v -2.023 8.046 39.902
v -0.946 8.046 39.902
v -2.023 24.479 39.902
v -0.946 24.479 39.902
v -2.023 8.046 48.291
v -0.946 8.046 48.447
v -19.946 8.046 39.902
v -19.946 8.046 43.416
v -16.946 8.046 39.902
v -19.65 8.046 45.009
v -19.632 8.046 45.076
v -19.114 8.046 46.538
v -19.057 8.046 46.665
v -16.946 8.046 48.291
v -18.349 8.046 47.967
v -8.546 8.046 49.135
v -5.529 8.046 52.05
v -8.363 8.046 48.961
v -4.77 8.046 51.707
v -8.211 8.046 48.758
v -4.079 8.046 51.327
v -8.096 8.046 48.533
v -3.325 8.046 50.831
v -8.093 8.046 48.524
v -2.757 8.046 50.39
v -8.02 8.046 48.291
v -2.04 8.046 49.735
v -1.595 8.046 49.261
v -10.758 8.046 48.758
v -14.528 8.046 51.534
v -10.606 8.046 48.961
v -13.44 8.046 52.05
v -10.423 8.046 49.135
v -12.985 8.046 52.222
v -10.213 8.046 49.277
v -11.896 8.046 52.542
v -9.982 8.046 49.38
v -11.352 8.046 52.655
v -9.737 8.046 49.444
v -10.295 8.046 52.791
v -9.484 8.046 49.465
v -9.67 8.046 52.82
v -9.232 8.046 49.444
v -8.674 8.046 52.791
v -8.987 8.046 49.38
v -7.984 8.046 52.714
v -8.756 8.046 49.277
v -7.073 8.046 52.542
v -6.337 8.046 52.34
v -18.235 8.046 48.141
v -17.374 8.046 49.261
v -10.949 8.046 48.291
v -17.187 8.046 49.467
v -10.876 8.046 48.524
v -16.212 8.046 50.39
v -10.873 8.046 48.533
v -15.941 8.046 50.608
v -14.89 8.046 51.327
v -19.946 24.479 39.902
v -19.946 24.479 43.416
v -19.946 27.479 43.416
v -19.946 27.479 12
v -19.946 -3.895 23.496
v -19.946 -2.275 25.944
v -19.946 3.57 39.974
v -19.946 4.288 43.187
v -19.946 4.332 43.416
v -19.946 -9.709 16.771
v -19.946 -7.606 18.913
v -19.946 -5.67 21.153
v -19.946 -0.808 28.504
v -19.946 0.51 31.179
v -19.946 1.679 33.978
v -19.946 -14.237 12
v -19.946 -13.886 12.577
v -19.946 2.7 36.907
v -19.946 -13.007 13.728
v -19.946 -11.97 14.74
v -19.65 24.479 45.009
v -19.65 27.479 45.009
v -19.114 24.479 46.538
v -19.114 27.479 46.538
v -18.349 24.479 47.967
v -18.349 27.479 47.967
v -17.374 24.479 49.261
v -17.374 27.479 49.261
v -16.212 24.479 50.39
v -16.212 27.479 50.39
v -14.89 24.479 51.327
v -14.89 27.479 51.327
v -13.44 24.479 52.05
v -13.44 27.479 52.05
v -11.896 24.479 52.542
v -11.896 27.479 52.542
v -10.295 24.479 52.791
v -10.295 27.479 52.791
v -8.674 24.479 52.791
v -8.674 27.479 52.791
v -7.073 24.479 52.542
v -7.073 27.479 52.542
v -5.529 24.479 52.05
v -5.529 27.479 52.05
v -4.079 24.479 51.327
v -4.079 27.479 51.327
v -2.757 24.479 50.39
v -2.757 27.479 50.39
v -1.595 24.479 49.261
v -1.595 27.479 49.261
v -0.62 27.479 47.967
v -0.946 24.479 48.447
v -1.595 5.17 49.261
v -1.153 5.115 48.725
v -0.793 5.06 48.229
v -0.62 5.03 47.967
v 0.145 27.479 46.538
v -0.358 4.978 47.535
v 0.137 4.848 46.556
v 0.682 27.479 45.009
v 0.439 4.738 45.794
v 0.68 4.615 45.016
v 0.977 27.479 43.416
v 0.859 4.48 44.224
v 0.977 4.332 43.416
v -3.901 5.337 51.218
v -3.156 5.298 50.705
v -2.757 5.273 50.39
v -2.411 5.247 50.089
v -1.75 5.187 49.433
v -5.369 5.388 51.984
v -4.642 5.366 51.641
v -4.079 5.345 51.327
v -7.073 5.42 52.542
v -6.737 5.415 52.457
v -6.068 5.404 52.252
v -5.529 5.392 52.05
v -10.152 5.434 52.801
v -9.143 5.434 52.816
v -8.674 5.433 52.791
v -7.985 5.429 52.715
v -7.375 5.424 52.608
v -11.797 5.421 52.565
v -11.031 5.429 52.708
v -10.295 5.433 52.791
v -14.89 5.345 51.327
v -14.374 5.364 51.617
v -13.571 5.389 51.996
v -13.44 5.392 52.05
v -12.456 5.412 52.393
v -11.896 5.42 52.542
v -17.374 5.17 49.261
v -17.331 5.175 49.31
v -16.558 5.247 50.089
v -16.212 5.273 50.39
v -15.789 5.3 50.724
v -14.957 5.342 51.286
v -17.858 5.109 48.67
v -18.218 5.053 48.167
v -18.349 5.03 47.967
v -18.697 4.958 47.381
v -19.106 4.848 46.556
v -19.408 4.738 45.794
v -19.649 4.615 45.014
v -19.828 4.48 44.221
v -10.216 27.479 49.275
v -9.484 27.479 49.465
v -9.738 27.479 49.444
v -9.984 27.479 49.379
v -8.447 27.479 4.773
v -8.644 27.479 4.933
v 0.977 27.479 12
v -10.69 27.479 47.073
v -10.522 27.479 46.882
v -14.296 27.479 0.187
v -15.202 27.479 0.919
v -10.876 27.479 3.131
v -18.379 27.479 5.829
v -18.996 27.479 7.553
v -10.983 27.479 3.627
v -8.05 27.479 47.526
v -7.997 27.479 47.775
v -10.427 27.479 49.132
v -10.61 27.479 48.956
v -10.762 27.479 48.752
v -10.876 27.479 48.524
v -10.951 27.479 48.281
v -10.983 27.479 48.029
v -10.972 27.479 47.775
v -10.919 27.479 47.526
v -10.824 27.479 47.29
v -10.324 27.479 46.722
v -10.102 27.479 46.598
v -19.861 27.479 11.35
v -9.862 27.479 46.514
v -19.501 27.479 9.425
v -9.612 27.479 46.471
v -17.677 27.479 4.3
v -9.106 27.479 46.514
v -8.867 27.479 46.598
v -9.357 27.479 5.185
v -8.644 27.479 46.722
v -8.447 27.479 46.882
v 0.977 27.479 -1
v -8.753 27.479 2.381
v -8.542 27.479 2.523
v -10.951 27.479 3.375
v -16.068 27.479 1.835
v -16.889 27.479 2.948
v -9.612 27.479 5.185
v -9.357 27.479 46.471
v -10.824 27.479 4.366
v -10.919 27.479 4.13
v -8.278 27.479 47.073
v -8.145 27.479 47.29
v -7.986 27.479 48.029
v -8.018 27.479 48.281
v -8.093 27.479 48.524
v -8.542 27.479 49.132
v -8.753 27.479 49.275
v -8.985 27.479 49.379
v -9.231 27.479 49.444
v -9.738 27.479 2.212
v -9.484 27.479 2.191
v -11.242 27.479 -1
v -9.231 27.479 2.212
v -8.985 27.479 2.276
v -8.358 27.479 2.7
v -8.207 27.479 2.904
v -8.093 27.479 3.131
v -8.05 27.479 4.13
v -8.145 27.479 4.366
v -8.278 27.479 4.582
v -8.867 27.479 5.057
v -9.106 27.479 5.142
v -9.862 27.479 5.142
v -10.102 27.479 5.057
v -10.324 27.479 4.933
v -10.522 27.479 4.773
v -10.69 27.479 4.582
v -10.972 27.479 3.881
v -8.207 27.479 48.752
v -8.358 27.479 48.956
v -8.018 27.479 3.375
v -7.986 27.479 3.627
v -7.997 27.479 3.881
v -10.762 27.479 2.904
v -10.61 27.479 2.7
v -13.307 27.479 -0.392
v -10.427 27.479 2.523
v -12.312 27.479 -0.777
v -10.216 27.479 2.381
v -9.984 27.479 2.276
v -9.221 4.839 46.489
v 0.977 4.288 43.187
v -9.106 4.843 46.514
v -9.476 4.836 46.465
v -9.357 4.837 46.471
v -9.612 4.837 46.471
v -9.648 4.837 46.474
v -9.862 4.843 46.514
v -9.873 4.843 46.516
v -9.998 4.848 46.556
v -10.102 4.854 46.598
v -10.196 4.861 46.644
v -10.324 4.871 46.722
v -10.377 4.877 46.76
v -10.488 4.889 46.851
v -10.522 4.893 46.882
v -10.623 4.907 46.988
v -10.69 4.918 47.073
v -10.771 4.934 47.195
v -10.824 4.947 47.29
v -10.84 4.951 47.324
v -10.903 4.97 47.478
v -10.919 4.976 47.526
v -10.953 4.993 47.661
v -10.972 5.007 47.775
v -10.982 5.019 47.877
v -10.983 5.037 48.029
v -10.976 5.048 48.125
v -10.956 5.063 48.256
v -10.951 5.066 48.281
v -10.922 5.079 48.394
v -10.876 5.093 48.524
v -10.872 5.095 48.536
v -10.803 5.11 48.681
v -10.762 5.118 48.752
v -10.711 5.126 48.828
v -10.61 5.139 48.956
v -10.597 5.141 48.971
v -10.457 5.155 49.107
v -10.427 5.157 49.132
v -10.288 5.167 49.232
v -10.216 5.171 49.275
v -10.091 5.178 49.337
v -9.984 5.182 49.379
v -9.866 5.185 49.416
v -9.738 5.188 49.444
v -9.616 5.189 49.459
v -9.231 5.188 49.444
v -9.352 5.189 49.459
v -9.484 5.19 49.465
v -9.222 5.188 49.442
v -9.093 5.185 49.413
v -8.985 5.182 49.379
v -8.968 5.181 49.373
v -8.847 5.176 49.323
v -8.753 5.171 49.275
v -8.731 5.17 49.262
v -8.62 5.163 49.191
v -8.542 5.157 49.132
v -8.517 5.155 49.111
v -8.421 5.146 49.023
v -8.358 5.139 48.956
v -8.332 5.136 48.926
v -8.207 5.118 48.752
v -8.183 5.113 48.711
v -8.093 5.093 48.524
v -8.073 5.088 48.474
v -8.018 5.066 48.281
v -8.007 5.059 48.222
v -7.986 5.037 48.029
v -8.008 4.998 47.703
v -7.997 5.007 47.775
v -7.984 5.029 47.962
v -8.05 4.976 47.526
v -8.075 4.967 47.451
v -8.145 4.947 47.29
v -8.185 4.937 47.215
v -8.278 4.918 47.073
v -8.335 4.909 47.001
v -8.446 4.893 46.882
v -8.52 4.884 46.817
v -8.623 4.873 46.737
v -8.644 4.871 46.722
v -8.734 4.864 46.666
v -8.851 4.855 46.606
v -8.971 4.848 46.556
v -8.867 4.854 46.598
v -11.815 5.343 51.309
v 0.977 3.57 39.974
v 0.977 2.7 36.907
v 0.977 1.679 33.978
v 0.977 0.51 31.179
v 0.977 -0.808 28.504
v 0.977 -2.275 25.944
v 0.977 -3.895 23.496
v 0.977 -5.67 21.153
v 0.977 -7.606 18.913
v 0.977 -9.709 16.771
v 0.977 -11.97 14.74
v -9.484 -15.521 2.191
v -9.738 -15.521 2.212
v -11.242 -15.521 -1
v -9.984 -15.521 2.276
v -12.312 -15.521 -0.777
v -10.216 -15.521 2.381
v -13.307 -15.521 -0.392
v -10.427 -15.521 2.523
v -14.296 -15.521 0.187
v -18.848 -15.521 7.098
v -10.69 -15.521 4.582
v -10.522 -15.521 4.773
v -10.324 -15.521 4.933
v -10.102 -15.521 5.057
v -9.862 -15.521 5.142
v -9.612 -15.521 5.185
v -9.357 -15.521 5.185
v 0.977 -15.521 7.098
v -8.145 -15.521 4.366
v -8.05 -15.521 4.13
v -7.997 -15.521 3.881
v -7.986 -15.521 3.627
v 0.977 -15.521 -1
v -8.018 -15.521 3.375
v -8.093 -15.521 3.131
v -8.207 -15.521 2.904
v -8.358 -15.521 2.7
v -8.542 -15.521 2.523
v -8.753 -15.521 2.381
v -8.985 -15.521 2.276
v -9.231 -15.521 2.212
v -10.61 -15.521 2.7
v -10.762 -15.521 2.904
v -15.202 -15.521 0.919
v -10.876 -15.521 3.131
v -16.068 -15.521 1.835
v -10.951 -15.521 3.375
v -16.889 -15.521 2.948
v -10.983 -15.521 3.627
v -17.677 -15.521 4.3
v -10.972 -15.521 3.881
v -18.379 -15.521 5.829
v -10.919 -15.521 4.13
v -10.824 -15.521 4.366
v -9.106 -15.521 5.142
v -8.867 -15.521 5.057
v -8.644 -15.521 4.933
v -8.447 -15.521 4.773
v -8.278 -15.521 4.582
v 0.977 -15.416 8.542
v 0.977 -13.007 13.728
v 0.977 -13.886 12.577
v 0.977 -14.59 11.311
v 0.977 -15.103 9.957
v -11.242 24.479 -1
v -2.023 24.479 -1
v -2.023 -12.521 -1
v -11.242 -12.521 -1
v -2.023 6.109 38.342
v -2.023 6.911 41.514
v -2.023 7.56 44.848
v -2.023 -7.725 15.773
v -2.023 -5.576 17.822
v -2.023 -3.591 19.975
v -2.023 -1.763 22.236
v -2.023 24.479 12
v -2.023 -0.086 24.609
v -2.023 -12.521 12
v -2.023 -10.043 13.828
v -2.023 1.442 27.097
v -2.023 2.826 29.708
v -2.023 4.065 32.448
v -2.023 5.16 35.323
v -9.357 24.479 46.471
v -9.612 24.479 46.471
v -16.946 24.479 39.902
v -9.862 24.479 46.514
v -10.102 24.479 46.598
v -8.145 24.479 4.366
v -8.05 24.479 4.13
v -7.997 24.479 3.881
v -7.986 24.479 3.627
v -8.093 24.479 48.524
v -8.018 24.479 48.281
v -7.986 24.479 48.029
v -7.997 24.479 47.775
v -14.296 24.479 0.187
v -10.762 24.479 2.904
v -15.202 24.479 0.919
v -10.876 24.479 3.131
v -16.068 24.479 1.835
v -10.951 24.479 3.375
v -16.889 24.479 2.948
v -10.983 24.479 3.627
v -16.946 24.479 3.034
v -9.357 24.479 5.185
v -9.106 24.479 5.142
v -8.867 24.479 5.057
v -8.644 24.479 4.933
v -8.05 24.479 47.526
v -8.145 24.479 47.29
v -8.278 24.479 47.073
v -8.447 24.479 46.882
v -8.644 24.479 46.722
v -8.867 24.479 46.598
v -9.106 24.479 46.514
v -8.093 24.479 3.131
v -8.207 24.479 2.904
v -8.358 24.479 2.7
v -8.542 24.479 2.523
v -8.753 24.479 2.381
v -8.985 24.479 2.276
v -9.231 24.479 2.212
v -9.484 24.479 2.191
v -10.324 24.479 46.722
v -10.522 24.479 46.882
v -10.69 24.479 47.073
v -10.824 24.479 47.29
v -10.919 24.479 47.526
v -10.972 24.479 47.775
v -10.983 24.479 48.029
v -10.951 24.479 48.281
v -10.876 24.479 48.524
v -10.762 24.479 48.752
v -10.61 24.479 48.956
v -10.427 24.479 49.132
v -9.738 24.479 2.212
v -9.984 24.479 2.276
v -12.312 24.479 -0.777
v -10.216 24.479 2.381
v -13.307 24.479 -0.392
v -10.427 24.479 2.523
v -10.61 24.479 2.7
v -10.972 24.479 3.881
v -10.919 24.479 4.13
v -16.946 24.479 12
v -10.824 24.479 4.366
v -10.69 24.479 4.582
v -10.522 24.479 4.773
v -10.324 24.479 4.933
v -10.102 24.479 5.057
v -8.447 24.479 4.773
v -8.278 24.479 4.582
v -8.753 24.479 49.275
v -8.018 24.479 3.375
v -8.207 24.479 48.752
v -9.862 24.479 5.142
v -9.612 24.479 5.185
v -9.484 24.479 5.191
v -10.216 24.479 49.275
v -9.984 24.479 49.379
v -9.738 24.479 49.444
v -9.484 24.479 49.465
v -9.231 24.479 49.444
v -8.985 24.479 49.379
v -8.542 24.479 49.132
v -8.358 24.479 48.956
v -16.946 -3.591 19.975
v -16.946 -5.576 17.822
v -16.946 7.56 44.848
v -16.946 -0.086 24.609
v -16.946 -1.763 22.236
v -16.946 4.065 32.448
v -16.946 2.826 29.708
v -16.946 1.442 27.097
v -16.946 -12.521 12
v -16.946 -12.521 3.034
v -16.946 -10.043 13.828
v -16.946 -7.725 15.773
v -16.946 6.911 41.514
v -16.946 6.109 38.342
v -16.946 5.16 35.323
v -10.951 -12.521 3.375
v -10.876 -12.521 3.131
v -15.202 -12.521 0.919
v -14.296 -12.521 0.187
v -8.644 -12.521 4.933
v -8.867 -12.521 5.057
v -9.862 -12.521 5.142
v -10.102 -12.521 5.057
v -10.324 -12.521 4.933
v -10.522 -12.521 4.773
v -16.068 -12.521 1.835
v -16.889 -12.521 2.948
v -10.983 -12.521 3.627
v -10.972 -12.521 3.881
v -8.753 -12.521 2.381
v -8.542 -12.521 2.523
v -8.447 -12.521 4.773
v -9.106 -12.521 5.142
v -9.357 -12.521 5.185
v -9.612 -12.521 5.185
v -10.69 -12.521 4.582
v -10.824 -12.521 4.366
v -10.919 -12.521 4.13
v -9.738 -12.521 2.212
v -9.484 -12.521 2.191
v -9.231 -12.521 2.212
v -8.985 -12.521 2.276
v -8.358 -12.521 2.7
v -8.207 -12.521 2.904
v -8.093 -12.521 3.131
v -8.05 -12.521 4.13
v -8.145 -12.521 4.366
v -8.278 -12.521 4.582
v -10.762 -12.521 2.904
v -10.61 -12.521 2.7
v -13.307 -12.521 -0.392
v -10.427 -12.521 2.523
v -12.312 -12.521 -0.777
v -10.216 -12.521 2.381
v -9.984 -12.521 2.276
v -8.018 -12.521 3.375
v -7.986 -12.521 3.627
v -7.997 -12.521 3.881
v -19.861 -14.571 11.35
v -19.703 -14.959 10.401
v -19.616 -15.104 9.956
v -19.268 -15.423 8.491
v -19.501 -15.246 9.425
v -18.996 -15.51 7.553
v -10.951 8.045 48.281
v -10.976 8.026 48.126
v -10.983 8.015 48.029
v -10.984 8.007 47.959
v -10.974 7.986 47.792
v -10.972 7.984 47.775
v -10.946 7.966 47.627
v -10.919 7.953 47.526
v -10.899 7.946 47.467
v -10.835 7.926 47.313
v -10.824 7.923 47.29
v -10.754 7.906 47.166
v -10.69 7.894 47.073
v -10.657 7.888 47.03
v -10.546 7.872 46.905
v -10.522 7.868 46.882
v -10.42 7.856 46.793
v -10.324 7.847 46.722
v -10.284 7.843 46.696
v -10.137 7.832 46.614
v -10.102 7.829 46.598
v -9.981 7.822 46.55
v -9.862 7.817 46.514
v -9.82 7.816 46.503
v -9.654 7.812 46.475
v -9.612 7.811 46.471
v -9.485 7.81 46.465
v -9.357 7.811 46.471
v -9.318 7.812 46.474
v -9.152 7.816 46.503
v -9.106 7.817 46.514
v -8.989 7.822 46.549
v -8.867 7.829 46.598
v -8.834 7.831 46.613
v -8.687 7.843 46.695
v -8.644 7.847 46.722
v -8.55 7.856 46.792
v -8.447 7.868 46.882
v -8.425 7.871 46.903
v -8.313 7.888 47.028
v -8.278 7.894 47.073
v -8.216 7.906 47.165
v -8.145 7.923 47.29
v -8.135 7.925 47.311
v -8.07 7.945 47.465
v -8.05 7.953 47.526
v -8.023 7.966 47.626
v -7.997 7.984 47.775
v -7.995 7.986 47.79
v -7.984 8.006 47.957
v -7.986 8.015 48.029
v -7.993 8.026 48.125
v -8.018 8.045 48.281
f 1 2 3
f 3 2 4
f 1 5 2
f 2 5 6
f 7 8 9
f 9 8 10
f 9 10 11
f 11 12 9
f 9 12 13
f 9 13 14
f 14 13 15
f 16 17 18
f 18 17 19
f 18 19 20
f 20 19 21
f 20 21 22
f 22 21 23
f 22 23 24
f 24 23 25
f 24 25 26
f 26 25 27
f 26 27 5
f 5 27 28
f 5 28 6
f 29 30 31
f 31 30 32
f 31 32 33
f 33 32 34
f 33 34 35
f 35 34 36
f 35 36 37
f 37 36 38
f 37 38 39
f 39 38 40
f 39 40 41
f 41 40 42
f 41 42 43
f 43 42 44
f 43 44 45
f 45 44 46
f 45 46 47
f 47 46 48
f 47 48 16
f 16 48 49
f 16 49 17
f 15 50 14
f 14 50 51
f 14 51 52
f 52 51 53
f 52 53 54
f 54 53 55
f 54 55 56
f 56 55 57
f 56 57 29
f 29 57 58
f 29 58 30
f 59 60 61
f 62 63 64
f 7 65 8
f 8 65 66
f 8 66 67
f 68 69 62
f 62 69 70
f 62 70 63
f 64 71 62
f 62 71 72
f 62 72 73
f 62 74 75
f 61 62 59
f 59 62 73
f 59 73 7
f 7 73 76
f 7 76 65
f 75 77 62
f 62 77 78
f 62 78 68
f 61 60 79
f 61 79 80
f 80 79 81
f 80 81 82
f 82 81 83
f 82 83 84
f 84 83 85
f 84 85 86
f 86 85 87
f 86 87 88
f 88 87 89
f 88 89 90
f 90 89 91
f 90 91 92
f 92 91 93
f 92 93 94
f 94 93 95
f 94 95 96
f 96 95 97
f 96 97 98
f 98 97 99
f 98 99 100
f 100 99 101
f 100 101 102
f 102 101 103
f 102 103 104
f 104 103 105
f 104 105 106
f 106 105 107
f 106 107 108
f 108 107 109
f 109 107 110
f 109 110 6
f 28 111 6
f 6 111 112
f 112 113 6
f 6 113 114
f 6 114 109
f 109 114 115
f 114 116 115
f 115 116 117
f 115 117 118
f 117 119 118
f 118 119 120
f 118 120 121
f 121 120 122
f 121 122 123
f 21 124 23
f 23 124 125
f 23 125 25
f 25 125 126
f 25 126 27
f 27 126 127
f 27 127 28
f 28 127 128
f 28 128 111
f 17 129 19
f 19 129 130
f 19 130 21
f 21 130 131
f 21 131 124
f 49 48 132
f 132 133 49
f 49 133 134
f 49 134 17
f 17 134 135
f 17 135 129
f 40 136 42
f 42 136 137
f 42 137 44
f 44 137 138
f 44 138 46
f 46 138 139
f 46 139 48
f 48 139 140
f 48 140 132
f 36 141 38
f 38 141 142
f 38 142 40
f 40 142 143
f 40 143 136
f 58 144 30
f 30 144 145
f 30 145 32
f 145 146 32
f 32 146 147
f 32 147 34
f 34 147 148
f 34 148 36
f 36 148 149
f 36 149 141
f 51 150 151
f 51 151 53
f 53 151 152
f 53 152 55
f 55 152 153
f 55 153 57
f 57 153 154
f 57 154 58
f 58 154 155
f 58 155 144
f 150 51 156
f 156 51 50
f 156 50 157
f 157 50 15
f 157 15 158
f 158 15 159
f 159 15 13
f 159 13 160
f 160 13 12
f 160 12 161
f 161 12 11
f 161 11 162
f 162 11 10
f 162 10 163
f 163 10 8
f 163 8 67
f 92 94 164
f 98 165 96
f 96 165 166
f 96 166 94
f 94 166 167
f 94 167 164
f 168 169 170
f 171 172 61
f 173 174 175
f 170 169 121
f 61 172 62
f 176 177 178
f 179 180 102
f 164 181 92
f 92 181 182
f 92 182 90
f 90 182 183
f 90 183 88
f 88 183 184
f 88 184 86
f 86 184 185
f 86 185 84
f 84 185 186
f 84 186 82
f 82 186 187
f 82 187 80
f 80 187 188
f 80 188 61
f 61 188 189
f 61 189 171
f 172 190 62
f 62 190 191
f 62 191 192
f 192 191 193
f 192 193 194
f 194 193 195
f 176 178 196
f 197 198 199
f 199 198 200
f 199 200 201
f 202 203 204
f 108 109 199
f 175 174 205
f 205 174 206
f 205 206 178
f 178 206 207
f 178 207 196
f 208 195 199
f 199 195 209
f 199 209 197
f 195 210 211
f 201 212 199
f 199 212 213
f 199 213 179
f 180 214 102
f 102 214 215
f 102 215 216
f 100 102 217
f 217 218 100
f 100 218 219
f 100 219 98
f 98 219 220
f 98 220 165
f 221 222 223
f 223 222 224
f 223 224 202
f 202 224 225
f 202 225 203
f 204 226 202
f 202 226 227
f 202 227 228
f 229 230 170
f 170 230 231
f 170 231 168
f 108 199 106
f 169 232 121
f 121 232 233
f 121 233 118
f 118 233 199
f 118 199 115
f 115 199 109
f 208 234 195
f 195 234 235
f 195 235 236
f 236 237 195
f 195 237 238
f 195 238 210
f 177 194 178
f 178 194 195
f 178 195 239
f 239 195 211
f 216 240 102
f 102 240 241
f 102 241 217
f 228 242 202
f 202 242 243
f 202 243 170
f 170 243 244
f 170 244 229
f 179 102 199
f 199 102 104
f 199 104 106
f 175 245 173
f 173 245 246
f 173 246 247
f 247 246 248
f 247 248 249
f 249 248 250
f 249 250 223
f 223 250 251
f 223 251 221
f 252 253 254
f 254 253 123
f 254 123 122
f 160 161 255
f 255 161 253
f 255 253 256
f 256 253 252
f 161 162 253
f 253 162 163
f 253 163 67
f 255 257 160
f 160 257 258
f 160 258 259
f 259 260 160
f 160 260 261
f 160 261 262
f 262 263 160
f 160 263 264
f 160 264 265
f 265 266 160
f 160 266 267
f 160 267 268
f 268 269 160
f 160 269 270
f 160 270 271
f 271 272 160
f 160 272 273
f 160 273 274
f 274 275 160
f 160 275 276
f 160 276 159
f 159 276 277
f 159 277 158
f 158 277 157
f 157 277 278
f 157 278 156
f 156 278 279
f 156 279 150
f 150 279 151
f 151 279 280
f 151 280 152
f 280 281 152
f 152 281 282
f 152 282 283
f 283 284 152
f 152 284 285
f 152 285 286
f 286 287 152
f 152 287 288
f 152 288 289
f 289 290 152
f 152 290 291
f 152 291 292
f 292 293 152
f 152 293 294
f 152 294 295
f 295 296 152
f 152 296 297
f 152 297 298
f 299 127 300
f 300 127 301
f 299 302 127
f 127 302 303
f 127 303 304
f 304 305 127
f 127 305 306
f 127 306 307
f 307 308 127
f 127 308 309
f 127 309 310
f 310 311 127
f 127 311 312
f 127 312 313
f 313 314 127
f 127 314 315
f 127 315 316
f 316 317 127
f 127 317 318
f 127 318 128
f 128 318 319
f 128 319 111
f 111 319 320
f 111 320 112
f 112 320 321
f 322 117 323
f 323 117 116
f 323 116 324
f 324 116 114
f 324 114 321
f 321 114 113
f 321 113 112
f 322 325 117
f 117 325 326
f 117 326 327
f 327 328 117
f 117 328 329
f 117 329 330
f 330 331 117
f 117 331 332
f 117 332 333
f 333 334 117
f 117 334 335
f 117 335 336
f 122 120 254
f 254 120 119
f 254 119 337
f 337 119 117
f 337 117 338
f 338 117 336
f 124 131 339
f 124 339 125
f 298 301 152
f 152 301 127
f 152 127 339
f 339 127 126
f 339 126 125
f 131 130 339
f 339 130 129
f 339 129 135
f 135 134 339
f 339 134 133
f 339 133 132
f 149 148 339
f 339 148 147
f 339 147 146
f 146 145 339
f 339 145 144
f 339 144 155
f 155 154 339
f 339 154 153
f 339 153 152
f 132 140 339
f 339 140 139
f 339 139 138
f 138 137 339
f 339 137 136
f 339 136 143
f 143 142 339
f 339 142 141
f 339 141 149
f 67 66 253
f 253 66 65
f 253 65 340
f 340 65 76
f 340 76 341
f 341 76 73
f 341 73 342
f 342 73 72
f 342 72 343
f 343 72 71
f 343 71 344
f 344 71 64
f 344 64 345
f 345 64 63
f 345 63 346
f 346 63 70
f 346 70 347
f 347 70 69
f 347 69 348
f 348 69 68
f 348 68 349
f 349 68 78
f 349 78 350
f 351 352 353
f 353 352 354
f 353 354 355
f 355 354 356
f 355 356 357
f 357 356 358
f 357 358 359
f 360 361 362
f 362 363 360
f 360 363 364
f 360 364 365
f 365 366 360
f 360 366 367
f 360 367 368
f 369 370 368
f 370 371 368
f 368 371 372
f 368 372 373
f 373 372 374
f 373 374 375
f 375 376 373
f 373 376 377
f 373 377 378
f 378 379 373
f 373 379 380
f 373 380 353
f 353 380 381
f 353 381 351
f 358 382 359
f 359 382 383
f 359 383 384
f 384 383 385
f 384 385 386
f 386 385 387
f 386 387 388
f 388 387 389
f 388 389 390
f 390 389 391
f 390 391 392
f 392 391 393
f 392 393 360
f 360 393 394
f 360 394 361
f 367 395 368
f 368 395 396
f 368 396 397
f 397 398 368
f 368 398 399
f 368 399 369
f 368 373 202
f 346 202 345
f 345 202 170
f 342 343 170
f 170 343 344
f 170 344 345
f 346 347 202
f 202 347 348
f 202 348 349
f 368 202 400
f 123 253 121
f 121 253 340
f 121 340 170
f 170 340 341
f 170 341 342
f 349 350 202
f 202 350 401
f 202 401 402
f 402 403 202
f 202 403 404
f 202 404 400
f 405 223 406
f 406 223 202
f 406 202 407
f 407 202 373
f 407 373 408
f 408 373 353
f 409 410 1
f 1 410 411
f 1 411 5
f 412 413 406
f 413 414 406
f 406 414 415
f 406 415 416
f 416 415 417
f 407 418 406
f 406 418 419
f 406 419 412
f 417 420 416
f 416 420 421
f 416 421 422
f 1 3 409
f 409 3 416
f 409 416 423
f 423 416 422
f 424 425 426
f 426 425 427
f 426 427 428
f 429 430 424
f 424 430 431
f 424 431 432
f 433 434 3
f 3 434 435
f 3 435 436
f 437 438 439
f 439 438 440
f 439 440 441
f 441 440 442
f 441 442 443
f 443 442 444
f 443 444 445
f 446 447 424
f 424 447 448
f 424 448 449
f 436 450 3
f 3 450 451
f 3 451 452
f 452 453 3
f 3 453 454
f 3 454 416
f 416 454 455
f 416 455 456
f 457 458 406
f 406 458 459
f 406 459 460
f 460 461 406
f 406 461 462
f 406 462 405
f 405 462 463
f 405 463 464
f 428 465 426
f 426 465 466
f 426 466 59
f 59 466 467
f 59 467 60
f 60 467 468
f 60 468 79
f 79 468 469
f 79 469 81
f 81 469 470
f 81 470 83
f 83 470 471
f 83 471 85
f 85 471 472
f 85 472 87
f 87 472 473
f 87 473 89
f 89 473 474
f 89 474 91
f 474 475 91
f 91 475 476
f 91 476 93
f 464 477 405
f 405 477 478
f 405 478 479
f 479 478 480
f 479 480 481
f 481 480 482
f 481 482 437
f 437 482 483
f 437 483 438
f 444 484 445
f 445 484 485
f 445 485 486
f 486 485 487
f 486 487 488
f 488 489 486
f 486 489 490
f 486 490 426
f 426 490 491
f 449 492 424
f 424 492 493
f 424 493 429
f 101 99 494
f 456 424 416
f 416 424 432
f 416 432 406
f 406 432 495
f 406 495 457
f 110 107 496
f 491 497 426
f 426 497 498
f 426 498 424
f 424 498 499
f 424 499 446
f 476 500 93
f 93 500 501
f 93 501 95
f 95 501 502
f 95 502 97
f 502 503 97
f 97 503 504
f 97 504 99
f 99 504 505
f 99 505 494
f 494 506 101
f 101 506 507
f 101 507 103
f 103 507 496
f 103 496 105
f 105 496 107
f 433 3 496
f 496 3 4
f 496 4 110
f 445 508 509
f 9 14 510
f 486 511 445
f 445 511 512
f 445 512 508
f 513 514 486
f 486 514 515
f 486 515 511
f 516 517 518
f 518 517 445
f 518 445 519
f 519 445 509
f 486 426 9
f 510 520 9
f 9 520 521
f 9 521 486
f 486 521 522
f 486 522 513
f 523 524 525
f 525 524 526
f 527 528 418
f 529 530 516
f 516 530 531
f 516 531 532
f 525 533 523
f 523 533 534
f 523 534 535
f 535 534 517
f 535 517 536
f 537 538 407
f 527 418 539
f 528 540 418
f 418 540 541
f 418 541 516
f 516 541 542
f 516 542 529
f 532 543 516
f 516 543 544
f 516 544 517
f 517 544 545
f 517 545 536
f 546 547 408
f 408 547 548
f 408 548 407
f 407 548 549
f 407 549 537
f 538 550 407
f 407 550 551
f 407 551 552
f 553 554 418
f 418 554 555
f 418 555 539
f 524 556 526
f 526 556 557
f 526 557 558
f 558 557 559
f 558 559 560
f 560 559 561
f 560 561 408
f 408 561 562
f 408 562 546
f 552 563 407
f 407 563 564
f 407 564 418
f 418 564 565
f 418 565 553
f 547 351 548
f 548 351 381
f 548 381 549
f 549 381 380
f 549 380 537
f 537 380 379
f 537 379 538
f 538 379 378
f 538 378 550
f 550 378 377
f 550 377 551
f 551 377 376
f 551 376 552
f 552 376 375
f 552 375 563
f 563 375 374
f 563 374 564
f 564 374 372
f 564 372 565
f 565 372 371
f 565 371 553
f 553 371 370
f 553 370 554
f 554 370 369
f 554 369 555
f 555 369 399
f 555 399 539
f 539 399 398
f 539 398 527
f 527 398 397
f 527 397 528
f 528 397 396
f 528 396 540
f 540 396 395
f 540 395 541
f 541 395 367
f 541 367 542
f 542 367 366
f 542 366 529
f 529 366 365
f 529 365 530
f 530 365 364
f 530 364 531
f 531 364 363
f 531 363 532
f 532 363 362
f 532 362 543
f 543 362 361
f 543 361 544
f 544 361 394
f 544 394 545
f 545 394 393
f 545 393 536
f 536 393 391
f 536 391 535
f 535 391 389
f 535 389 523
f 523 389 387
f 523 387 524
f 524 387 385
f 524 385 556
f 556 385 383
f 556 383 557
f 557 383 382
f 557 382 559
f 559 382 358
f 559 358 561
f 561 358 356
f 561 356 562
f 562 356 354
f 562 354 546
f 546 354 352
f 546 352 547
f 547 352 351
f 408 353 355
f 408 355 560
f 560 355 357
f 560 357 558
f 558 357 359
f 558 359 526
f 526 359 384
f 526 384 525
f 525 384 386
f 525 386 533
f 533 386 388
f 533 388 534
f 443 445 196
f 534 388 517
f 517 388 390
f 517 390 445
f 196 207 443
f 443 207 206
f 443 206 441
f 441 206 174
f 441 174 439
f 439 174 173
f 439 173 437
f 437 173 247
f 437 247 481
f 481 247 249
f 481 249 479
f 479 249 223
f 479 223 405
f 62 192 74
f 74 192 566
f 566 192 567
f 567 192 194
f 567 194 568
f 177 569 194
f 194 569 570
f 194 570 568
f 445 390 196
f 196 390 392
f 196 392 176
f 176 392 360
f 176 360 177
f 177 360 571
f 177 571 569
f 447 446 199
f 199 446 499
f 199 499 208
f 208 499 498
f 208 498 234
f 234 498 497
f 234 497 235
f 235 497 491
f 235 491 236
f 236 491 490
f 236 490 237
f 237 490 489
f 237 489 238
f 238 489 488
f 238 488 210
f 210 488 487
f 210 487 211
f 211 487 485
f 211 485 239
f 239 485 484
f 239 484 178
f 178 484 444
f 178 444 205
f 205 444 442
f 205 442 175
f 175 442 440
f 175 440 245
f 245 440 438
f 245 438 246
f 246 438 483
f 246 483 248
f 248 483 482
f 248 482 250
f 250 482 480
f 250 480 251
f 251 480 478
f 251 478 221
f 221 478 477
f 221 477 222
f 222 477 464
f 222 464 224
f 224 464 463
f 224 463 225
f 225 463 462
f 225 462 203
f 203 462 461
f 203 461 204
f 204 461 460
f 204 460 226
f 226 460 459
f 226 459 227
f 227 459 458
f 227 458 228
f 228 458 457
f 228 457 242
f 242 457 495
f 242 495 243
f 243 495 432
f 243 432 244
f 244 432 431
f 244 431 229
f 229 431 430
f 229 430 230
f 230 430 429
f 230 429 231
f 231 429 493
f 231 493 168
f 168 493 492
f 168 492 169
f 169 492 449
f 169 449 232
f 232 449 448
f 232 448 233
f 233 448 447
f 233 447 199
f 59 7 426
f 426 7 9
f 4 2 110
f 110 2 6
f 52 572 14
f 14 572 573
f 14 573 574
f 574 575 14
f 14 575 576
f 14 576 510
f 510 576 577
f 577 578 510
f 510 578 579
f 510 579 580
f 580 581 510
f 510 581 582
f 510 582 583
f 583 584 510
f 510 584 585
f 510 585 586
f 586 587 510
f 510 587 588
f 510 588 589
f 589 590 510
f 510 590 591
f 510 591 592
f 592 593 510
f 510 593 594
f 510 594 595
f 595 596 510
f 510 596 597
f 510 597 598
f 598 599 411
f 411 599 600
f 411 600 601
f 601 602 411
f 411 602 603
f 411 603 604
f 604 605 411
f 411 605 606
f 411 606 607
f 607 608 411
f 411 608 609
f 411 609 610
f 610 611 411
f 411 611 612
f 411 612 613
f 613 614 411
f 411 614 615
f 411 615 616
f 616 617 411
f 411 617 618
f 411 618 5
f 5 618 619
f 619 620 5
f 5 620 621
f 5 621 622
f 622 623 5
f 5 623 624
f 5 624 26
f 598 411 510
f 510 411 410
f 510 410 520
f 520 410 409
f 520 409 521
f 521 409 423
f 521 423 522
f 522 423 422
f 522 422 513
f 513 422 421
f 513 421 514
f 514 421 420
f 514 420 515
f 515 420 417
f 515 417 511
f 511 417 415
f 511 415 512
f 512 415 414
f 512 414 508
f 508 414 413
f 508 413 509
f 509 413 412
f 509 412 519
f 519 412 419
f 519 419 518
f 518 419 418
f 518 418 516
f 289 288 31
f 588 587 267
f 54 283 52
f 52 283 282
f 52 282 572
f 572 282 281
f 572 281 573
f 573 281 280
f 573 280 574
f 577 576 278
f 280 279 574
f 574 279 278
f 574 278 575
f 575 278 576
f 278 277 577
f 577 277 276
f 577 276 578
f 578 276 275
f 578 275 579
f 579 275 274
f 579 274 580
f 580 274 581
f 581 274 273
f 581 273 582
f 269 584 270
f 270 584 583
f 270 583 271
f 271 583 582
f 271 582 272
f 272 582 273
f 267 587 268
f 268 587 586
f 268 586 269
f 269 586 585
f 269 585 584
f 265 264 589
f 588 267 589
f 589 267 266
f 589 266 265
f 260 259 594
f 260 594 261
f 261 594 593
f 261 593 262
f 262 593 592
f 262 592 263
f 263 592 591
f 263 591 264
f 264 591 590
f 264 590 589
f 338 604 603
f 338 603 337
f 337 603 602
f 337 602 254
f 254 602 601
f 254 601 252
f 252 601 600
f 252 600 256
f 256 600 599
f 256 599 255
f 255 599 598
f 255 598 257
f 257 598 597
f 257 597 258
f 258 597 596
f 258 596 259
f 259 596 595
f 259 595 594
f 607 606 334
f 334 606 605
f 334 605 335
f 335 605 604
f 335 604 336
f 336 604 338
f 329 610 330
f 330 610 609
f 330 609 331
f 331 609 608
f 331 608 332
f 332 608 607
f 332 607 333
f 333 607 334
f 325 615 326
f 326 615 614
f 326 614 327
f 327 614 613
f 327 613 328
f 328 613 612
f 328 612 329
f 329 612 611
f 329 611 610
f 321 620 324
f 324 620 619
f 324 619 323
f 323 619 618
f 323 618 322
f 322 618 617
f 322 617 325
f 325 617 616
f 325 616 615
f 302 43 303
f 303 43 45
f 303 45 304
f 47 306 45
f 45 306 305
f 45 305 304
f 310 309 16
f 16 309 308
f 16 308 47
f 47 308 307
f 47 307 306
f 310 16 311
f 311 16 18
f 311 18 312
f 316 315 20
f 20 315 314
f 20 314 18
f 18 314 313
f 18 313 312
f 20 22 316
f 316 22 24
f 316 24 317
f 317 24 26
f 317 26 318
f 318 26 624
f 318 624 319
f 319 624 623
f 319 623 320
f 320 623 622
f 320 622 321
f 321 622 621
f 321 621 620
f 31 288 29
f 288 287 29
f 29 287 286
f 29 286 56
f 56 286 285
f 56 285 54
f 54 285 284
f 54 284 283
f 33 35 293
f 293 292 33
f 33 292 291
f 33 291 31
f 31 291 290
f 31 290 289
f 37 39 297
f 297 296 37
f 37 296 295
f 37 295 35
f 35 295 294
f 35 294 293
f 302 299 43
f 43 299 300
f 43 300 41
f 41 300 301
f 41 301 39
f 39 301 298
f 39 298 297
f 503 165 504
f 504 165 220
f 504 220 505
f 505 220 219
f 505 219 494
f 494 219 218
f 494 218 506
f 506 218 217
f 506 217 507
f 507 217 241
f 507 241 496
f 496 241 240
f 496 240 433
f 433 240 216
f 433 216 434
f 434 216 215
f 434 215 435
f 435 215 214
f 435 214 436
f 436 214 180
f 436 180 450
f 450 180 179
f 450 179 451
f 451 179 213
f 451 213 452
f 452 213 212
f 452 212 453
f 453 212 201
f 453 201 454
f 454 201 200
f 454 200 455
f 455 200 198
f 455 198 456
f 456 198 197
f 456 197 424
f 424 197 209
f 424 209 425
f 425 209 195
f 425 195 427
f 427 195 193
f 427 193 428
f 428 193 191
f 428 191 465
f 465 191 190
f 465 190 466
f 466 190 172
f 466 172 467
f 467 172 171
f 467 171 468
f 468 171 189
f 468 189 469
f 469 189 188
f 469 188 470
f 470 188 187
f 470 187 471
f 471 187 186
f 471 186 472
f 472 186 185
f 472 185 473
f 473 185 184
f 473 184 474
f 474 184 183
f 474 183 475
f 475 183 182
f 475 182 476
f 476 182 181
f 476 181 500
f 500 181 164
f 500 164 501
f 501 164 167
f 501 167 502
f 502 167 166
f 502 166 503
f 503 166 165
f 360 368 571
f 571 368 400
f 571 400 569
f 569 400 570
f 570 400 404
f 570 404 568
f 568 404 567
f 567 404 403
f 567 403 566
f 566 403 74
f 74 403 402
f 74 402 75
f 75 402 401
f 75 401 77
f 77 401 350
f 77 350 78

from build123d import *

# Parameters (mm, degrees)
BOSS_EXTRUDE1_DEPTH      = 12
BOSS_EXTRUDE1_DEPTH_BACK = 1
SKETCH1_W                = 20.922356035
SKETCH1_H                = 43
SKETCH14_W               = 14.922356035
SKETCH14_H               = 37
CUT_EXTRUDE6_DEPTH       = 13
SKETCH15_R               = 1.5
CUT_EXTRUDE10_DEPTH      = 43
LOFT8_START              = -19.945599133
LOFT8_DEPTH              = 20.922356013
CUT_EXTRUDE20_DEPTH      = 43
SKETCH22_W               = 16
SKETCH22_H               = 16.433534057
CUT_EXTRUDE21_DEPTH      = 19
CUT_LOFT2_START          = -16.94559915
CUT_LOFT2_DEPTH          = 14.922356033
SKETCH23_R               = 1.5
CUT_EXTRUDE23_DEPTH      = 33
FILLET1_R                = 10


# Read off the part's stored shape, not the designer's step: Loft8, Cut-Loft2
with BuildPart() as part:
    # Sketch1 → Boss-Extrude1 (new, two sides: drawn at the far end of the back side and taken through both)
    with BuildSketch(Plane.XY.offset(-BOSS_EXTRUDE1_DEPTH_BACK)):
        with Locations((-9.484421134, 5.979237668)):
            Rectangle(SKETCH1_W, SKETCH1_H)
    extrude(amount=BOSS_EXTRUDE1_DEPTH + BOSS_EXTRUDE1_DEPTH_BACK)

    # Sketch14 → Cut-Extrude6 (cut)
    with BuildSketch(Plane(origin=(0, 0, -1), x_dir=(-1, 0, 0), z_dir=(0, 0, -1))):
        with Locations((9.484421134, 5.979237668)):
            Rectangle(SKETCH14_W, SKETCH14_H)
    extrude(amount=-CUT_EXTRUDE6_DEPTH, mode=Mode.SUBTRACT)

    # Sketch15 → Cut-Extrude10 (cut)
    with BuildSketch(Plane.XZ.offset(15.520762332)):
        with Locations(Location((-9.484421134, 3.6905228, 0), (0, 0, 270))):
            Circle(SKETCH15_R)
        with BuildLine():
            add(Edge.make_bspline(
                [(-9.484421134, -1), (-16.426209899, -1.809910236), (-19.358305998, 6.878284344), (-19.945599152, 12)],
                knots=[0, 0, 0, 0, 1, 1, 1, 1], degree=3))
            add(Edge.make_bspline(
                [(-19.945599152, 12), (-50.062585738, -15.871811338), (-9.484421134, -1)],
                knots=[0, 0, 0, 1, 1, 1], degree=2))
        make_face()
    extrude(amount=-CUT_EXTRUDE10_DEPTH, mode=Mode.SUBTRACT)

    # Loft8 outline → Loft8 (add)
    with BuildSketch(Plane.YZ.offset(LOFT8_START)):
        with BuildLine():
            add(Edge.make_bspline(
                [(-15.520762333, 12.000000001), (-2.214111033, 21.392948337), (4.785888967, 35.338065027), (5.479237667, 53.835350068)],
                knots=[0, 0, 0, 0, 1, 1, 1, 1], degree=3))
            Line((-15.520762333, 12.000000001), (-12.520762334, 12))
            Line((-12.520762334, 12), (24.479237668, 12.000000002))
            Line((24.479237668, 12.000000002), (27.479237669, 12))
            Line((27.479237669, 12), (27.479237666, 53.835350069))
            Line((27.479237666, 53.835350069), (5.479237667, 53.835350068))
        make_face()
    extrude(amount=LOFT8_DEPTH)

    # Sketch21 → Cut-Extrude20 (cut)
    with BuildSketch(Plane(origin=(0, 27.479237668, 0), x_dir=(1, 0, 0), z_dir=(0, 1, 0))):
        with BuildLine():
            ThreePointArc((-19.945599152, -41.186866189), (-9.484421134, -52.821930397), (0.976756883, -41.186866189))
            add(Edge.make_bspline(
                [(0.976756883, -41.186866189), (22.088375755, -54.528516897), (-10.313654941, -86.662148681), (-35.550608102, -49.144456459), (-19.945599152, -41.186866189)],
                knots=[0, 0, 0, 0, 0.529728329, 1, 1, 1, 1], degree=3))
        make_face()
    extrude(amount=-CUT_EXTRUDE20_DEPTH, mode=Mode.SUBTRACT)

    # Sketch22 → Cut-Extrude21 (cut)
    with BuildSketch(Plane.ZY.offset(19.94559914)):
        with Locations((47.901671706, 16.262470629)):
            Rectangle(SKETCH22_W, SKETCH22_H)
    extrude(amount=-CUT_EXTRUDE21_DEPTH, mode=Mode.SUBTRACT)

    # Cut-Loft2 outline → Cut-Loft2 (cut)
    with BuildSketch(Plane.YZ.offset(CUT_LOFT2_START)):
        with BuildLine():
            add(Edge.make_bspline(
                [(-12.520762331, 12), (-0.657436898, 20.210774423), (6.198051749, 32.307850958), (8.045703611, 48.291229604)],
                knots=[0, 0, 0, 0, 0.898841703, 0.898841703, 0.898841703, 0.898841703], degree=3))
            Line((-12.520762331, 12), (24.47923767, 12))
            Line((24.47923767, 12), (24.47923767, 39.901671701))
            Line((24.47923767, 39.901671701), (8.045703601, 39.901671701))
            Line((8.045703601, 39.901671701), (8.045703611, 48.291229604))
        make_face()
    extrude(amount=CUT_LOFT2_DEPTH, mode=Mode.SUBTRACT)

    # Sketch23 → Cut-Extrude23 (cut)
    with BuildSketch(Plane(origin=(0, 27.479237668, 0), x_dir=(1, 0, 0), z_dir=(0, 1, 0))):
        with Locations(Location((-9.484421063, -47.965150337, 0), (0, 0, 270))):
            Circle(SKETCH23_R)
    extrude(amount=-CUT_EXTRUDE23_DEPTH, mode=Mode.SUBTRACT)

    # Fillet1
    fillet1_edges = [part.edges().sort_by_distance(p)[0] for p in [
        (-9.484421134, -15.520762332, 12),
    ]]
    fillet(fillet1_edges, radius=FILLET1_R)


solid = part.part
